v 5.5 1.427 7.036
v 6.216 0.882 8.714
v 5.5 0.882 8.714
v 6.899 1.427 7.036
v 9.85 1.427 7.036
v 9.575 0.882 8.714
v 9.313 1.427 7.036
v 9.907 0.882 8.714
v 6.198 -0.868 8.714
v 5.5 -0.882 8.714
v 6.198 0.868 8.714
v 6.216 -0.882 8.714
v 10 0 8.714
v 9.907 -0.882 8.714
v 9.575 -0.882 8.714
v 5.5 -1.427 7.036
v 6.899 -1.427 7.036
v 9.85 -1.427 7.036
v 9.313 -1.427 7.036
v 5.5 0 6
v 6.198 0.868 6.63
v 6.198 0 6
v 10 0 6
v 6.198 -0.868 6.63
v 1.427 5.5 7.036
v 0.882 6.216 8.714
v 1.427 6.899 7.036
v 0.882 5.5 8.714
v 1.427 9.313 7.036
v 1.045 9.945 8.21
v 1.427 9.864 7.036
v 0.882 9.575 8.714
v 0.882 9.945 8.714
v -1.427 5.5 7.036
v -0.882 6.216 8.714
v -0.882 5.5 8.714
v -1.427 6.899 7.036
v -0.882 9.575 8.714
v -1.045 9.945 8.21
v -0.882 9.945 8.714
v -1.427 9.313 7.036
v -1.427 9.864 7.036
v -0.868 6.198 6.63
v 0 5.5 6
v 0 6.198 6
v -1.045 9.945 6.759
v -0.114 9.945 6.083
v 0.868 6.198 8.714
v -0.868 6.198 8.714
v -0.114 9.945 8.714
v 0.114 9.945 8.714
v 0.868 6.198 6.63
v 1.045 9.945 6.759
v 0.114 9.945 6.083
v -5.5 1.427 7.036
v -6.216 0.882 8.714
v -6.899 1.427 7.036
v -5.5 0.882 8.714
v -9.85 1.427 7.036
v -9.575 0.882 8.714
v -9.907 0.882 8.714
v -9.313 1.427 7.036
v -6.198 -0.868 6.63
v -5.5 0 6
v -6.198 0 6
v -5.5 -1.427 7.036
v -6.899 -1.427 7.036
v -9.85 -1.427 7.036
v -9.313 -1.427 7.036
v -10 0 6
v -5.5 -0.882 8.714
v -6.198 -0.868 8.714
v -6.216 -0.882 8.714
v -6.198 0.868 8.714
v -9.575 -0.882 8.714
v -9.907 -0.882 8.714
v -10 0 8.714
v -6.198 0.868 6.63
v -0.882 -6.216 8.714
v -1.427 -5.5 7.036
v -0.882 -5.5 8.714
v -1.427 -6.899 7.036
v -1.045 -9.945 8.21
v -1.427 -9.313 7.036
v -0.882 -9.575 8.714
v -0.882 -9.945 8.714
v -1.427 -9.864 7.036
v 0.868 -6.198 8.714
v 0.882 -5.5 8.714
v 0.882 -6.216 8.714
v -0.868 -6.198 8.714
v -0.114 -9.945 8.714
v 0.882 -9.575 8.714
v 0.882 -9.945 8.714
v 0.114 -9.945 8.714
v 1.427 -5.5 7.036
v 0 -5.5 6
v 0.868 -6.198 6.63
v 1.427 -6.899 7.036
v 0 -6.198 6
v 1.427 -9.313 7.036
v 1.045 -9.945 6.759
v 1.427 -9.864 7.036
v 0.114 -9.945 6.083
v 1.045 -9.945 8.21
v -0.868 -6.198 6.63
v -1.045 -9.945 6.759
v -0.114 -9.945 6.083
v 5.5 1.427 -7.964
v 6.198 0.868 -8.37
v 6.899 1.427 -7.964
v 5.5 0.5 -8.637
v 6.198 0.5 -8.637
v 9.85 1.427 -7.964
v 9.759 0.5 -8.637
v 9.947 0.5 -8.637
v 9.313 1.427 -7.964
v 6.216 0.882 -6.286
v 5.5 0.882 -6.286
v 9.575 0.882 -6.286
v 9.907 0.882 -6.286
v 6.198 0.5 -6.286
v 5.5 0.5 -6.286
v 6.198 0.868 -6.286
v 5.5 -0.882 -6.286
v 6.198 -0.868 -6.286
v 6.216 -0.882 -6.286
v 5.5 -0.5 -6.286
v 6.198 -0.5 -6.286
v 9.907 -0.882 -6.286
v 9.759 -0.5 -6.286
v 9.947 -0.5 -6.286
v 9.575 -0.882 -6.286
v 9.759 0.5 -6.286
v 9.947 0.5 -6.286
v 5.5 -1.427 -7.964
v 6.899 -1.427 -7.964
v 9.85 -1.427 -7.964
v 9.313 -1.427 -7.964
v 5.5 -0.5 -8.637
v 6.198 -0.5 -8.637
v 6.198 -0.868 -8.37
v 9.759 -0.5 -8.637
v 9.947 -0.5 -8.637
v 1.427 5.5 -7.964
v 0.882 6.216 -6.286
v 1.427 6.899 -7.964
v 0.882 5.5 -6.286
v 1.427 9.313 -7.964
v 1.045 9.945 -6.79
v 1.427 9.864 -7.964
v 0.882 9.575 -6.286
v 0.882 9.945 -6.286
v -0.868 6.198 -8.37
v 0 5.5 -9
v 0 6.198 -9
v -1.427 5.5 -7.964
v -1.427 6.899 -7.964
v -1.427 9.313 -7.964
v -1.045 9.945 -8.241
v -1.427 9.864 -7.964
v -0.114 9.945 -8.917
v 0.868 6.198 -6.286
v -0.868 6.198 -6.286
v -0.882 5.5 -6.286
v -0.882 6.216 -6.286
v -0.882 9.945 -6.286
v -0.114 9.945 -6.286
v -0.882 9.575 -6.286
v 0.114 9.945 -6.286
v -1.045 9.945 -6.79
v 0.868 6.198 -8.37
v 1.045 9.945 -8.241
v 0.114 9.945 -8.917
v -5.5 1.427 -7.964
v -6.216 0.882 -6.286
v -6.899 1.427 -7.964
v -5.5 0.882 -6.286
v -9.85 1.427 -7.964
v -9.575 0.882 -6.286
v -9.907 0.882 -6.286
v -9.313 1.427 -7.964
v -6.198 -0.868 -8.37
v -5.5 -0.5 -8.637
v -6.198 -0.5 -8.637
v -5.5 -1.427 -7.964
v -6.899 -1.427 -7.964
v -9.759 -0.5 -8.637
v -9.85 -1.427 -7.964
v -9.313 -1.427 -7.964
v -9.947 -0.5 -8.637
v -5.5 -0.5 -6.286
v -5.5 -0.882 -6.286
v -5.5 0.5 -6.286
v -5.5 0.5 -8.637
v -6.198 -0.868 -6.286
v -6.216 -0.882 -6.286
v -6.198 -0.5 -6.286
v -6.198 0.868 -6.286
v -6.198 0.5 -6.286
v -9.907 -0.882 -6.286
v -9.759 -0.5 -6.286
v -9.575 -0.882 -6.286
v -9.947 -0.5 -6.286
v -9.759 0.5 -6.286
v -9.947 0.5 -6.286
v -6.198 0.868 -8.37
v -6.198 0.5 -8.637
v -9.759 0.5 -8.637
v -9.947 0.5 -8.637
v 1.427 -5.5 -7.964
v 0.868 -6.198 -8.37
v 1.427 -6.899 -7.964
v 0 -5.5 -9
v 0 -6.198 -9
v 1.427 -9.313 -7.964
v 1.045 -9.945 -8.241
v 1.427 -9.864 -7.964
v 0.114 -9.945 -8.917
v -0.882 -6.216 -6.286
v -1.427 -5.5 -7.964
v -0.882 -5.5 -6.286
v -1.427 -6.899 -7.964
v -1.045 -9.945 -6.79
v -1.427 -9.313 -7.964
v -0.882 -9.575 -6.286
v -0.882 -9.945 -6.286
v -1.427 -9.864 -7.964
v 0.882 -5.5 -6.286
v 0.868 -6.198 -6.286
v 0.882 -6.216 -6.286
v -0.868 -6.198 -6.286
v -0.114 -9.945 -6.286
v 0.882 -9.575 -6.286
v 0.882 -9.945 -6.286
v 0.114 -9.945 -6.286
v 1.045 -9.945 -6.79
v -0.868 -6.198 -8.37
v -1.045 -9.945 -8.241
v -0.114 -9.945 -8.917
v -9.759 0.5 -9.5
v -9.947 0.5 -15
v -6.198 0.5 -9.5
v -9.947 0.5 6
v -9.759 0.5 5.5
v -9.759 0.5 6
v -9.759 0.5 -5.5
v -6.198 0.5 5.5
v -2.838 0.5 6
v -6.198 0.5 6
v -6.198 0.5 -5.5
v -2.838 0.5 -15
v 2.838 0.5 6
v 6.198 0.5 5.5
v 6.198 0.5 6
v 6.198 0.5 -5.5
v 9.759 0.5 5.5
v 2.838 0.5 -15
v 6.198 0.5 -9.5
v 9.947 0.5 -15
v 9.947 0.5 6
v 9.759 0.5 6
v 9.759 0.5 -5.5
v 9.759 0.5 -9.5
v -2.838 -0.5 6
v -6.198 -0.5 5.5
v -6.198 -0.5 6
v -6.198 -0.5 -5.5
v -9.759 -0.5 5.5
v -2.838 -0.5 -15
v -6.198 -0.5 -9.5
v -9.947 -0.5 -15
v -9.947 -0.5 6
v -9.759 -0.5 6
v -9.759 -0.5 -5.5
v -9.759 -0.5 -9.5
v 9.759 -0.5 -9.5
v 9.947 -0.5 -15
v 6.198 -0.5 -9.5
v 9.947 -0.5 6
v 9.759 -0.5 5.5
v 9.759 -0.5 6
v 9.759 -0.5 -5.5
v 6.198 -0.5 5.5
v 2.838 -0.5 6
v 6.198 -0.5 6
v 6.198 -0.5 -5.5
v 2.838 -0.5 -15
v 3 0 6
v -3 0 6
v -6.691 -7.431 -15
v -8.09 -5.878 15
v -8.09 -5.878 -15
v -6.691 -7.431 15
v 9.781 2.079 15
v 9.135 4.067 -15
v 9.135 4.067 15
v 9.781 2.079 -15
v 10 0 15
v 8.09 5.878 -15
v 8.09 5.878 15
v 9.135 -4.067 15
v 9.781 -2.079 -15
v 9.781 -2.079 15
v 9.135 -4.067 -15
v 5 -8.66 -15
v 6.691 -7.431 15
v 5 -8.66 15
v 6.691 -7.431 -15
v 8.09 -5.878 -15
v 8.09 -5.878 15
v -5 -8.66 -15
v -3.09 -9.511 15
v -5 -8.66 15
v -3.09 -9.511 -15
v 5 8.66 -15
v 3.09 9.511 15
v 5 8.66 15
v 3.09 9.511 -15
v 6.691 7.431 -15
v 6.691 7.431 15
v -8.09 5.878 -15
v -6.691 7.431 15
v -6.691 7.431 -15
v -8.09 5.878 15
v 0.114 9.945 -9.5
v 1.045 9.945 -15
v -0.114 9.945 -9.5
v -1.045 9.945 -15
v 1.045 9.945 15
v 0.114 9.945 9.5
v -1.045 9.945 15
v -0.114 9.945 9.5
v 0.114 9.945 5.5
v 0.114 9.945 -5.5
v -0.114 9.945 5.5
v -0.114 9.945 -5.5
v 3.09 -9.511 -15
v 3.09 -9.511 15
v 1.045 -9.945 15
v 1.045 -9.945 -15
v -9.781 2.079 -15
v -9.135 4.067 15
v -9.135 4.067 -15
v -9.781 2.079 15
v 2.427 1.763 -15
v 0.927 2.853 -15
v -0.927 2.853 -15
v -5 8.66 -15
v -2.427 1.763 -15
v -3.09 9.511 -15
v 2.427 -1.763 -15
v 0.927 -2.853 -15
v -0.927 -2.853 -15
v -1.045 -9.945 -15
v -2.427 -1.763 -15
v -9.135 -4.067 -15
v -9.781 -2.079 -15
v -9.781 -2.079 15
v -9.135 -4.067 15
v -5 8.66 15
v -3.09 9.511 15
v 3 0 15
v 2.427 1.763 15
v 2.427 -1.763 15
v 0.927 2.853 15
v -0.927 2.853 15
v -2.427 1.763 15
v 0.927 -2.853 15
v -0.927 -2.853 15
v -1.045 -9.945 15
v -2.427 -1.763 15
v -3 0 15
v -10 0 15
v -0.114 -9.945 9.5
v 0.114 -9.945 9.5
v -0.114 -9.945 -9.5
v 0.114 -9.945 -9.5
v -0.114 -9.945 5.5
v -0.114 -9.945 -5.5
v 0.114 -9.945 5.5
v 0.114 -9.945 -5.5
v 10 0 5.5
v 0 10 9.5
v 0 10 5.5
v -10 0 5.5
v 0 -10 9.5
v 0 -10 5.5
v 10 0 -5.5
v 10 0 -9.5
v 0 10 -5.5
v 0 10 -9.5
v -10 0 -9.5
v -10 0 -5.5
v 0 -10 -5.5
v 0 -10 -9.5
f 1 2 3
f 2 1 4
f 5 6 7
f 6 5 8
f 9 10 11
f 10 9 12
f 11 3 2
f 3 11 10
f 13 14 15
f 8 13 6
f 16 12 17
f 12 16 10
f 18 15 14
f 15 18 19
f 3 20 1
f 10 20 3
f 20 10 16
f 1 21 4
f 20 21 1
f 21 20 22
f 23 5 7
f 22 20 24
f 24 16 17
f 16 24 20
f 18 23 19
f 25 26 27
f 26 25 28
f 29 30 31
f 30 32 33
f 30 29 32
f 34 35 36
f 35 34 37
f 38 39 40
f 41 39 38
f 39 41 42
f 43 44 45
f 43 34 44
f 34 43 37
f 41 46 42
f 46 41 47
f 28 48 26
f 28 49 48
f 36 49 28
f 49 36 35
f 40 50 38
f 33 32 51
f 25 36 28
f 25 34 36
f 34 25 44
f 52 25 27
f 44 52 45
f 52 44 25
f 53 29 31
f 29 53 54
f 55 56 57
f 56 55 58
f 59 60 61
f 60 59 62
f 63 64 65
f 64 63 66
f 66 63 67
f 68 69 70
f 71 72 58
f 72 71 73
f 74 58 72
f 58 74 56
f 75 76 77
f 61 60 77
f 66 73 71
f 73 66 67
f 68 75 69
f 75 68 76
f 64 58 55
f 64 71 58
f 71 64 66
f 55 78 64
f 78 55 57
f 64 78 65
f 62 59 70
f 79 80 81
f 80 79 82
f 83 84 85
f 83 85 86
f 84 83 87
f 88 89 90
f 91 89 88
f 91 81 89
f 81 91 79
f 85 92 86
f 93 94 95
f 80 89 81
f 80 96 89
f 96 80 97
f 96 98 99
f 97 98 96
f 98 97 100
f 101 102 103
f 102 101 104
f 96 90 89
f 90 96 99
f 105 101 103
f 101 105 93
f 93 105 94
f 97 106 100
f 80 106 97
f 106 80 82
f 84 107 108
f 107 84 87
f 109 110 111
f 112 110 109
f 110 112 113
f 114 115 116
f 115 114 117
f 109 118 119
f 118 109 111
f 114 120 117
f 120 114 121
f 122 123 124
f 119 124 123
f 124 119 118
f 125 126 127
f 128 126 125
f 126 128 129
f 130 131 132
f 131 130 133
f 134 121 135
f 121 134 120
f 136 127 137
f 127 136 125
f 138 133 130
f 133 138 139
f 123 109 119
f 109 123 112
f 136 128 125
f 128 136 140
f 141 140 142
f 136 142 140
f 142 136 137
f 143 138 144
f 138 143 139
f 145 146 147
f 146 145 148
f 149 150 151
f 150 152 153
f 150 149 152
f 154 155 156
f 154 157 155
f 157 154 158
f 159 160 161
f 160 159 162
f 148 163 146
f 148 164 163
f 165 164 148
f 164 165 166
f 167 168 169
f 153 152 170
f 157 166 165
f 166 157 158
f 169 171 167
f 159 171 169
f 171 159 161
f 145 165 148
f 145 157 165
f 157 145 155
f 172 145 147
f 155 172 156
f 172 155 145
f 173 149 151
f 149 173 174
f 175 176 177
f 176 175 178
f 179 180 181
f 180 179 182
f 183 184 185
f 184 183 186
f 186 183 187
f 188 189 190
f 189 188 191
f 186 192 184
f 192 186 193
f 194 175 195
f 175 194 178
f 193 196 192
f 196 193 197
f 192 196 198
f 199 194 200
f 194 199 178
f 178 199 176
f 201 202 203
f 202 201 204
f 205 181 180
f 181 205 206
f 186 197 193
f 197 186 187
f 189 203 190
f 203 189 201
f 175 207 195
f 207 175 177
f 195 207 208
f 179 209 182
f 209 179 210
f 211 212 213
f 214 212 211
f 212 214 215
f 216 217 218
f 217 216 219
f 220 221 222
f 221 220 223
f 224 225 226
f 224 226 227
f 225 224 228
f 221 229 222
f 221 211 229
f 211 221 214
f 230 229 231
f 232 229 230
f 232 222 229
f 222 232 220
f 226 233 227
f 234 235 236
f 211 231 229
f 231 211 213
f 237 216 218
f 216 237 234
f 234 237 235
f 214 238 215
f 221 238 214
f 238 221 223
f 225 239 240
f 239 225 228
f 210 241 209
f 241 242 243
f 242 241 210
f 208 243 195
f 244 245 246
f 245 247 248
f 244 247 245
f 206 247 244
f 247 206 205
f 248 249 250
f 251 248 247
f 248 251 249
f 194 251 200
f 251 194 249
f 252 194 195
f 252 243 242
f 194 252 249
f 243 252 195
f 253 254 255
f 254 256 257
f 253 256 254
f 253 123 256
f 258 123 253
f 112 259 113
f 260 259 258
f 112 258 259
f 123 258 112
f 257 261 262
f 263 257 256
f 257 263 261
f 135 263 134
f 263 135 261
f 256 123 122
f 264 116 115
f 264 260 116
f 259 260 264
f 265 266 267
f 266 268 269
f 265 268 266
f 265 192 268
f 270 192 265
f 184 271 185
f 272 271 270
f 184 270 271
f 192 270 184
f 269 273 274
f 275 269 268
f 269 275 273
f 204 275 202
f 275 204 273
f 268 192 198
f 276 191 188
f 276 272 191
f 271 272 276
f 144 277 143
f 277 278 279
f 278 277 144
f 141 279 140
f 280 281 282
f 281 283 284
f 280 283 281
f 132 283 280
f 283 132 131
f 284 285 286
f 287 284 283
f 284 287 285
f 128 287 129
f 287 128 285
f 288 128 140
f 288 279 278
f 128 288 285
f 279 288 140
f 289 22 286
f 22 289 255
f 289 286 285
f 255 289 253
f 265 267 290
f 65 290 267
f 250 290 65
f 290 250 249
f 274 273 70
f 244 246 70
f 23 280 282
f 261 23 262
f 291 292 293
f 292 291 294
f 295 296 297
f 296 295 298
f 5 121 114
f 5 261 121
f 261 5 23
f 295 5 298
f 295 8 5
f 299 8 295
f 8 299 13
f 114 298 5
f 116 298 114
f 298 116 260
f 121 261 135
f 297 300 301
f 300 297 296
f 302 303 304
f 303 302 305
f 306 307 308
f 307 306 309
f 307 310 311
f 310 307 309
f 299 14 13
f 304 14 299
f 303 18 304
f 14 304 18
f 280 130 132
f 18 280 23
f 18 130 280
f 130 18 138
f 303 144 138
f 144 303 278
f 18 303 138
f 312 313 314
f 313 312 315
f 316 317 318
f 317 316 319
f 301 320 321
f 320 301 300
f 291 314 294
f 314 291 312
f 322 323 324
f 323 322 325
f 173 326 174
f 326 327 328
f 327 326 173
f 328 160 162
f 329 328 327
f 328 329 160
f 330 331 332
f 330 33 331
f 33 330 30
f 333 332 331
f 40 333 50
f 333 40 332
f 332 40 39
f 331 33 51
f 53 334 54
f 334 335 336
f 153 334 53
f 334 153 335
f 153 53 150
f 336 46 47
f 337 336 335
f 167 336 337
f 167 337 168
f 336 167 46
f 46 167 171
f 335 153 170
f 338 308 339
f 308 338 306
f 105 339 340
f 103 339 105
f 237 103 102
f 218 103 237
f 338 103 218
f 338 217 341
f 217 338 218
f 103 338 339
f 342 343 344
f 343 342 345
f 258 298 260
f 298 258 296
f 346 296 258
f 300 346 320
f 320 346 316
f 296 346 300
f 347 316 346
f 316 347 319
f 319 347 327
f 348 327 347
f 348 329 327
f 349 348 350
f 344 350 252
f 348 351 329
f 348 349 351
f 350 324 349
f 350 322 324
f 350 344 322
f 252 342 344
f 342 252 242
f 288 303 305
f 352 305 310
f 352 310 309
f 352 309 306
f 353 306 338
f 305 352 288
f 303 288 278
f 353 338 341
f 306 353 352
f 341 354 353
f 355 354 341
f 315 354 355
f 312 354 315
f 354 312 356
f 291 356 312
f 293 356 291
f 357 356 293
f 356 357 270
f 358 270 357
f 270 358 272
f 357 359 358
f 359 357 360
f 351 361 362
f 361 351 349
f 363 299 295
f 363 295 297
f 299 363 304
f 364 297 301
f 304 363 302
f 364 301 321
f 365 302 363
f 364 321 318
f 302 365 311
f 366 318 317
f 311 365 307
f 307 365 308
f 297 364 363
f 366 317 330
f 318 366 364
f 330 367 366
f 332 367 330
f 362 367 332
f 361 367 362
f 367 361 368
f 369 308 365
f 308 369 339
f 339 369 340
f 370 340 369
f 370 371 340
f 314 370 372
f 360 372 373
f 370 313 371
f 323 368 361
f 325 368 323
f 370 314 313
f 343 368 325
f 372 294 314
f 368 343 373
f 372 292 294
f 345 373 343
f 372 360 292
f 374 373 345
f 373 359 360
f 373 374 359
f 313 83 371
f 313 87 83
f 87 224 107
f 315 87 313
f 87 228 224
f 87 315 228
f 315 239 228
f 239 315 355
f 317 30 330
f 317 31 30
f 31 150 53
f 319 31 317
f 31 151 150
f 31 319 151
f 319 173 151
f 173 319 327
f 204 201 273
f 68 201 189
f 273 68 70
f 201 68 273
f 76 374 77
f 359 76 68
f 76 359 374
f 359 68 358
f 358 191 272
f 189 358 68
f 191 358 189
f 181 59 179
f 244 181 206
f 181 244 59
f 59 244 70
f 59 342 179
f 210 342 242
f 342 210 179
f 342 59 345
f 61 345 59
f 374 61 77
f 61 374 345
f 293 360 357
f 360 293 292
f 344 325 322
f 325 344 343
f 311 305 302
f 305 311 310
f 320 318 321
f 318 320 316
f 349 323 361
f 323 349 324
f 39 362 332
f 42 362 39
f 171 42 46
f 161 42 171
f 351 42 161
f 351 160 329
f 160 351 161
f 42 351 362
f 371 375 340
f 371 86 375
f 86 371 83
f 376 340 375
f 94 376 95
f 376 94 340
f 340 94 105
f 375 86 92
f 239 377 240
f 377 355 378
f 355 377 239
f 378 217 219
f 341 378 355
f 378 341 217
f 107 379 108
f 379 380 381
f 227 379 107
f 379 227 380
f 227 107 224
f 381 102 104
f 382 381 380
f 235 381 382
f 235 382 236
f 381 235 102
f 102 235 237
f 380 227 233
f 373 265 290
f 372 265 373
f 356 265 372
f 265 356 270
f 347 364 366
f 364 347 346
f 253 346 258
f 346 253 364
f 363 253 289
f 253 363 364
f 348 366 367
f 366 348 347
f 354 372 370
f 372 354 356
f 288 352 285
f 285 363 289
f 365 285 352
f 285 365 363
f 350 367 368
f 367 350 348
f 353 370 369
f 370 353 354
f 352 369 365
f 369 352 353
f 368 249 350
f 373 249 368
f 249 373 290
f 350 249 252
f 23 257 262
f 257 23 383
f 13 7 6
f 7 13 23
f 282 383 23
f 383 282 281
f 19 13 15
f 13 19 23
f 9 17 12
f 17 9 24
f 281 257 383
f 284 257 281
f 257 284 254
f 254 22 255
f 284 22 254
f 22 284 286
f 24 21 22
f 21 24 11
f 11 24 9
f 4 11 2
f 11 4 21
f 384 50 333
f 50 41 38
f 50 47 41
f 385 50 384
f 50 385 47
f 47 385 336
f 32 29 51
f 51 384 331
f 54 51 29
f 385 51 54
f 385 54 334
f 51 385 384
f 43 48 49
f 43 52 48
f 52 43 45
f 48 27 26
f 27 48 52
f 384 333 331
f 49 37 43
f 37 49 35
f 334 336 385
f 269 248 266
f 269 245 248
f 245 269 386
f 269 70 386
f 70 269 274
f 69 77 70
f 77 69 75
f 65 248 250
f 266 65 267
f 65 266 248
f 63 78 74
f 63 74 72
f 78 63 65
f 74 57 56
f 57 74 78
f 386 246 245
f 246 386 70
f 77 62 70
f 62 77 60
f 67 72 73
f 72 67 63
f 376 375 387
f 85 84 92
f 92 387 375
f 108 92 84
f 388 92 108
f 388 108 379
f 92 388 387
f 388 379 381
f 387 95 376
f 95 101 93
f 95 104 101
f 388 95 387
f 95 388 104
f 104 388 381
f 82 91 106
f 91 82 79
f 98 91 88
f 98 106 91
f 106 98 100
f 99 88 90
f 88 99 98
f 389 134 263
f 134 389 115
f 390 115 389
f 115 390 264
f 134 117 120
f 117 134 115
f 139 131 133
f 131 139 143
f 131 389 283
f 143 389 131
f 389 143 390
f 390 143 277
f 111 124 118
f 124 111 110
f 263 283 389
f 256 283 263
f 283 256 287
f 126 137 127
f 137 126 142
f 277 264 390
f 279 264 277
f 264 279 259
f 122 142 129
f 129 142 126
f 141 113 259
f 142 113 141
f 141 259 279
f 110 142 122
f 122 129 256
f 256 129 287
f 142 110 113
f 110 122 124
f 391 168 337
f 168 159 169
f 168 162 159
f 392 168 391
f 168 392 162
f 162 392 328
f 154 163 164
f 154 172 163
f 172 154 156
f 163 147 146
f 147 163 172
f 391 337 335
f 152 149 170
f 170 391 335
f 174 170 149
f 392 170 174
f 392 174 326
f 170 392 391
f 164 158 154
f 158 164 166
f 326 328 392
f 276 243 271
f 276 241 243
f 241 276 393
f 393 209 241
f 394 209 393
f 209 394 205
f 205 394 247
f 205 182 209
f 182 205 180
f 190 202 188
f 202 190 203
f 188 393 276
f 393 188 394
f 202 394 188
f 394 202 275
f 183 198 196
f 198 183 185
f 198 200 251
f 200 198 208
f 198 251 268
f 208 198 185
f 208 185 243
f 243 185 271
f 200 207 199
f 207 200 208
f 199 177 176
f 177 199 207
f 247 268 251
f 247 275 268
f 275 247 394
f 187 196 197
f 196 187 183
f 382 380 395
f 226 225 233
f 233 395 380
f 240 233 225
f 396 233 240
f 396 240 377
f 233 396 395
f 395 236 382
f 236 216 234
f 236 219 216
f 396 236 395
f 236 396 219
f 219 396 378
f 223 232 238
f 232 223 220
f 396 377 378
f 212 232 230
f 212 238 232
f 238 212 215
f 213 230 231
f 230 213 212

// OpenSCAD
// Parameters
coupling_diameter = 20;
coupling_height = 30;
shaft_hole_diameter = 6;
set_screw_hole_diameter = 3;
set_screw_hole_depth = 5;
slit_width = 1;
slit_spacing = 3;
num_slits = 5;

// Function to create the flexible coupling body
module flexible_coupling_body() {
    difference() {
        // Main cylindrical body
        cylinder(h = coupling_height, d = coupling_diameter, center = true);
        
        // Central bore for shaft insertion
        cylinder(h = coupling_height + 2, d = shaft_hole_diameter, center = true);
        
        // Set screw holes
        for (i = [0:3]) {
            rotate([0, 0, i * 90])
                translate([coupling_diameter / 2 - 2, 0, coupling_height / 4])
                    rotate([0, 90, 0])
                        cylinder(h = set_screw_hole_depth, d = set_screw_hole_diameter, center = true);
        }
        
        for (i = [0:3]) {
            rotate([0, 0, i * 90])
                translate([coupling_diameter / 2 - 2, 0, -coupling_height / 4])
                    rotate([0, 90, 0])
                        cylinder(h = set_screw_hole_depth, d = set_screw_hole_diameter, center = true);
        }
        
        // Slits for flexibility
        for (i = [0:num_slits - 1]) {
            translate([0, 0, -coupling_height / 2 + (i + 0.5) * slit_spacing])
                cube([coupling_diameter, slit_width, coupling_height / 2], center = true);
        }
    }
}

// Function to create set screws
module set_screw() {
    cylinder(h = 4, d = set_screw_hole_diameter + 1, center = true);
}

// Assemble the model
module flexible_coupling() {
    flexible_coupling_body();
    
    // Positioning the set screws
    for (i = [0:3]) {
        rotate([0, 0, i * 90])
            translate([coupling_diameter / 2 - 2, 0, coupling_height / 4])
                set_screw();
    }
    
    for (i = [0:3]) {
        rotate([0, 0, i * 90])
            translate([coupling_diameter / 2 - 2, 0, -coupling_height / 4])
                set_screw();
    }
}

// Render the final model
flexible_coupling();
